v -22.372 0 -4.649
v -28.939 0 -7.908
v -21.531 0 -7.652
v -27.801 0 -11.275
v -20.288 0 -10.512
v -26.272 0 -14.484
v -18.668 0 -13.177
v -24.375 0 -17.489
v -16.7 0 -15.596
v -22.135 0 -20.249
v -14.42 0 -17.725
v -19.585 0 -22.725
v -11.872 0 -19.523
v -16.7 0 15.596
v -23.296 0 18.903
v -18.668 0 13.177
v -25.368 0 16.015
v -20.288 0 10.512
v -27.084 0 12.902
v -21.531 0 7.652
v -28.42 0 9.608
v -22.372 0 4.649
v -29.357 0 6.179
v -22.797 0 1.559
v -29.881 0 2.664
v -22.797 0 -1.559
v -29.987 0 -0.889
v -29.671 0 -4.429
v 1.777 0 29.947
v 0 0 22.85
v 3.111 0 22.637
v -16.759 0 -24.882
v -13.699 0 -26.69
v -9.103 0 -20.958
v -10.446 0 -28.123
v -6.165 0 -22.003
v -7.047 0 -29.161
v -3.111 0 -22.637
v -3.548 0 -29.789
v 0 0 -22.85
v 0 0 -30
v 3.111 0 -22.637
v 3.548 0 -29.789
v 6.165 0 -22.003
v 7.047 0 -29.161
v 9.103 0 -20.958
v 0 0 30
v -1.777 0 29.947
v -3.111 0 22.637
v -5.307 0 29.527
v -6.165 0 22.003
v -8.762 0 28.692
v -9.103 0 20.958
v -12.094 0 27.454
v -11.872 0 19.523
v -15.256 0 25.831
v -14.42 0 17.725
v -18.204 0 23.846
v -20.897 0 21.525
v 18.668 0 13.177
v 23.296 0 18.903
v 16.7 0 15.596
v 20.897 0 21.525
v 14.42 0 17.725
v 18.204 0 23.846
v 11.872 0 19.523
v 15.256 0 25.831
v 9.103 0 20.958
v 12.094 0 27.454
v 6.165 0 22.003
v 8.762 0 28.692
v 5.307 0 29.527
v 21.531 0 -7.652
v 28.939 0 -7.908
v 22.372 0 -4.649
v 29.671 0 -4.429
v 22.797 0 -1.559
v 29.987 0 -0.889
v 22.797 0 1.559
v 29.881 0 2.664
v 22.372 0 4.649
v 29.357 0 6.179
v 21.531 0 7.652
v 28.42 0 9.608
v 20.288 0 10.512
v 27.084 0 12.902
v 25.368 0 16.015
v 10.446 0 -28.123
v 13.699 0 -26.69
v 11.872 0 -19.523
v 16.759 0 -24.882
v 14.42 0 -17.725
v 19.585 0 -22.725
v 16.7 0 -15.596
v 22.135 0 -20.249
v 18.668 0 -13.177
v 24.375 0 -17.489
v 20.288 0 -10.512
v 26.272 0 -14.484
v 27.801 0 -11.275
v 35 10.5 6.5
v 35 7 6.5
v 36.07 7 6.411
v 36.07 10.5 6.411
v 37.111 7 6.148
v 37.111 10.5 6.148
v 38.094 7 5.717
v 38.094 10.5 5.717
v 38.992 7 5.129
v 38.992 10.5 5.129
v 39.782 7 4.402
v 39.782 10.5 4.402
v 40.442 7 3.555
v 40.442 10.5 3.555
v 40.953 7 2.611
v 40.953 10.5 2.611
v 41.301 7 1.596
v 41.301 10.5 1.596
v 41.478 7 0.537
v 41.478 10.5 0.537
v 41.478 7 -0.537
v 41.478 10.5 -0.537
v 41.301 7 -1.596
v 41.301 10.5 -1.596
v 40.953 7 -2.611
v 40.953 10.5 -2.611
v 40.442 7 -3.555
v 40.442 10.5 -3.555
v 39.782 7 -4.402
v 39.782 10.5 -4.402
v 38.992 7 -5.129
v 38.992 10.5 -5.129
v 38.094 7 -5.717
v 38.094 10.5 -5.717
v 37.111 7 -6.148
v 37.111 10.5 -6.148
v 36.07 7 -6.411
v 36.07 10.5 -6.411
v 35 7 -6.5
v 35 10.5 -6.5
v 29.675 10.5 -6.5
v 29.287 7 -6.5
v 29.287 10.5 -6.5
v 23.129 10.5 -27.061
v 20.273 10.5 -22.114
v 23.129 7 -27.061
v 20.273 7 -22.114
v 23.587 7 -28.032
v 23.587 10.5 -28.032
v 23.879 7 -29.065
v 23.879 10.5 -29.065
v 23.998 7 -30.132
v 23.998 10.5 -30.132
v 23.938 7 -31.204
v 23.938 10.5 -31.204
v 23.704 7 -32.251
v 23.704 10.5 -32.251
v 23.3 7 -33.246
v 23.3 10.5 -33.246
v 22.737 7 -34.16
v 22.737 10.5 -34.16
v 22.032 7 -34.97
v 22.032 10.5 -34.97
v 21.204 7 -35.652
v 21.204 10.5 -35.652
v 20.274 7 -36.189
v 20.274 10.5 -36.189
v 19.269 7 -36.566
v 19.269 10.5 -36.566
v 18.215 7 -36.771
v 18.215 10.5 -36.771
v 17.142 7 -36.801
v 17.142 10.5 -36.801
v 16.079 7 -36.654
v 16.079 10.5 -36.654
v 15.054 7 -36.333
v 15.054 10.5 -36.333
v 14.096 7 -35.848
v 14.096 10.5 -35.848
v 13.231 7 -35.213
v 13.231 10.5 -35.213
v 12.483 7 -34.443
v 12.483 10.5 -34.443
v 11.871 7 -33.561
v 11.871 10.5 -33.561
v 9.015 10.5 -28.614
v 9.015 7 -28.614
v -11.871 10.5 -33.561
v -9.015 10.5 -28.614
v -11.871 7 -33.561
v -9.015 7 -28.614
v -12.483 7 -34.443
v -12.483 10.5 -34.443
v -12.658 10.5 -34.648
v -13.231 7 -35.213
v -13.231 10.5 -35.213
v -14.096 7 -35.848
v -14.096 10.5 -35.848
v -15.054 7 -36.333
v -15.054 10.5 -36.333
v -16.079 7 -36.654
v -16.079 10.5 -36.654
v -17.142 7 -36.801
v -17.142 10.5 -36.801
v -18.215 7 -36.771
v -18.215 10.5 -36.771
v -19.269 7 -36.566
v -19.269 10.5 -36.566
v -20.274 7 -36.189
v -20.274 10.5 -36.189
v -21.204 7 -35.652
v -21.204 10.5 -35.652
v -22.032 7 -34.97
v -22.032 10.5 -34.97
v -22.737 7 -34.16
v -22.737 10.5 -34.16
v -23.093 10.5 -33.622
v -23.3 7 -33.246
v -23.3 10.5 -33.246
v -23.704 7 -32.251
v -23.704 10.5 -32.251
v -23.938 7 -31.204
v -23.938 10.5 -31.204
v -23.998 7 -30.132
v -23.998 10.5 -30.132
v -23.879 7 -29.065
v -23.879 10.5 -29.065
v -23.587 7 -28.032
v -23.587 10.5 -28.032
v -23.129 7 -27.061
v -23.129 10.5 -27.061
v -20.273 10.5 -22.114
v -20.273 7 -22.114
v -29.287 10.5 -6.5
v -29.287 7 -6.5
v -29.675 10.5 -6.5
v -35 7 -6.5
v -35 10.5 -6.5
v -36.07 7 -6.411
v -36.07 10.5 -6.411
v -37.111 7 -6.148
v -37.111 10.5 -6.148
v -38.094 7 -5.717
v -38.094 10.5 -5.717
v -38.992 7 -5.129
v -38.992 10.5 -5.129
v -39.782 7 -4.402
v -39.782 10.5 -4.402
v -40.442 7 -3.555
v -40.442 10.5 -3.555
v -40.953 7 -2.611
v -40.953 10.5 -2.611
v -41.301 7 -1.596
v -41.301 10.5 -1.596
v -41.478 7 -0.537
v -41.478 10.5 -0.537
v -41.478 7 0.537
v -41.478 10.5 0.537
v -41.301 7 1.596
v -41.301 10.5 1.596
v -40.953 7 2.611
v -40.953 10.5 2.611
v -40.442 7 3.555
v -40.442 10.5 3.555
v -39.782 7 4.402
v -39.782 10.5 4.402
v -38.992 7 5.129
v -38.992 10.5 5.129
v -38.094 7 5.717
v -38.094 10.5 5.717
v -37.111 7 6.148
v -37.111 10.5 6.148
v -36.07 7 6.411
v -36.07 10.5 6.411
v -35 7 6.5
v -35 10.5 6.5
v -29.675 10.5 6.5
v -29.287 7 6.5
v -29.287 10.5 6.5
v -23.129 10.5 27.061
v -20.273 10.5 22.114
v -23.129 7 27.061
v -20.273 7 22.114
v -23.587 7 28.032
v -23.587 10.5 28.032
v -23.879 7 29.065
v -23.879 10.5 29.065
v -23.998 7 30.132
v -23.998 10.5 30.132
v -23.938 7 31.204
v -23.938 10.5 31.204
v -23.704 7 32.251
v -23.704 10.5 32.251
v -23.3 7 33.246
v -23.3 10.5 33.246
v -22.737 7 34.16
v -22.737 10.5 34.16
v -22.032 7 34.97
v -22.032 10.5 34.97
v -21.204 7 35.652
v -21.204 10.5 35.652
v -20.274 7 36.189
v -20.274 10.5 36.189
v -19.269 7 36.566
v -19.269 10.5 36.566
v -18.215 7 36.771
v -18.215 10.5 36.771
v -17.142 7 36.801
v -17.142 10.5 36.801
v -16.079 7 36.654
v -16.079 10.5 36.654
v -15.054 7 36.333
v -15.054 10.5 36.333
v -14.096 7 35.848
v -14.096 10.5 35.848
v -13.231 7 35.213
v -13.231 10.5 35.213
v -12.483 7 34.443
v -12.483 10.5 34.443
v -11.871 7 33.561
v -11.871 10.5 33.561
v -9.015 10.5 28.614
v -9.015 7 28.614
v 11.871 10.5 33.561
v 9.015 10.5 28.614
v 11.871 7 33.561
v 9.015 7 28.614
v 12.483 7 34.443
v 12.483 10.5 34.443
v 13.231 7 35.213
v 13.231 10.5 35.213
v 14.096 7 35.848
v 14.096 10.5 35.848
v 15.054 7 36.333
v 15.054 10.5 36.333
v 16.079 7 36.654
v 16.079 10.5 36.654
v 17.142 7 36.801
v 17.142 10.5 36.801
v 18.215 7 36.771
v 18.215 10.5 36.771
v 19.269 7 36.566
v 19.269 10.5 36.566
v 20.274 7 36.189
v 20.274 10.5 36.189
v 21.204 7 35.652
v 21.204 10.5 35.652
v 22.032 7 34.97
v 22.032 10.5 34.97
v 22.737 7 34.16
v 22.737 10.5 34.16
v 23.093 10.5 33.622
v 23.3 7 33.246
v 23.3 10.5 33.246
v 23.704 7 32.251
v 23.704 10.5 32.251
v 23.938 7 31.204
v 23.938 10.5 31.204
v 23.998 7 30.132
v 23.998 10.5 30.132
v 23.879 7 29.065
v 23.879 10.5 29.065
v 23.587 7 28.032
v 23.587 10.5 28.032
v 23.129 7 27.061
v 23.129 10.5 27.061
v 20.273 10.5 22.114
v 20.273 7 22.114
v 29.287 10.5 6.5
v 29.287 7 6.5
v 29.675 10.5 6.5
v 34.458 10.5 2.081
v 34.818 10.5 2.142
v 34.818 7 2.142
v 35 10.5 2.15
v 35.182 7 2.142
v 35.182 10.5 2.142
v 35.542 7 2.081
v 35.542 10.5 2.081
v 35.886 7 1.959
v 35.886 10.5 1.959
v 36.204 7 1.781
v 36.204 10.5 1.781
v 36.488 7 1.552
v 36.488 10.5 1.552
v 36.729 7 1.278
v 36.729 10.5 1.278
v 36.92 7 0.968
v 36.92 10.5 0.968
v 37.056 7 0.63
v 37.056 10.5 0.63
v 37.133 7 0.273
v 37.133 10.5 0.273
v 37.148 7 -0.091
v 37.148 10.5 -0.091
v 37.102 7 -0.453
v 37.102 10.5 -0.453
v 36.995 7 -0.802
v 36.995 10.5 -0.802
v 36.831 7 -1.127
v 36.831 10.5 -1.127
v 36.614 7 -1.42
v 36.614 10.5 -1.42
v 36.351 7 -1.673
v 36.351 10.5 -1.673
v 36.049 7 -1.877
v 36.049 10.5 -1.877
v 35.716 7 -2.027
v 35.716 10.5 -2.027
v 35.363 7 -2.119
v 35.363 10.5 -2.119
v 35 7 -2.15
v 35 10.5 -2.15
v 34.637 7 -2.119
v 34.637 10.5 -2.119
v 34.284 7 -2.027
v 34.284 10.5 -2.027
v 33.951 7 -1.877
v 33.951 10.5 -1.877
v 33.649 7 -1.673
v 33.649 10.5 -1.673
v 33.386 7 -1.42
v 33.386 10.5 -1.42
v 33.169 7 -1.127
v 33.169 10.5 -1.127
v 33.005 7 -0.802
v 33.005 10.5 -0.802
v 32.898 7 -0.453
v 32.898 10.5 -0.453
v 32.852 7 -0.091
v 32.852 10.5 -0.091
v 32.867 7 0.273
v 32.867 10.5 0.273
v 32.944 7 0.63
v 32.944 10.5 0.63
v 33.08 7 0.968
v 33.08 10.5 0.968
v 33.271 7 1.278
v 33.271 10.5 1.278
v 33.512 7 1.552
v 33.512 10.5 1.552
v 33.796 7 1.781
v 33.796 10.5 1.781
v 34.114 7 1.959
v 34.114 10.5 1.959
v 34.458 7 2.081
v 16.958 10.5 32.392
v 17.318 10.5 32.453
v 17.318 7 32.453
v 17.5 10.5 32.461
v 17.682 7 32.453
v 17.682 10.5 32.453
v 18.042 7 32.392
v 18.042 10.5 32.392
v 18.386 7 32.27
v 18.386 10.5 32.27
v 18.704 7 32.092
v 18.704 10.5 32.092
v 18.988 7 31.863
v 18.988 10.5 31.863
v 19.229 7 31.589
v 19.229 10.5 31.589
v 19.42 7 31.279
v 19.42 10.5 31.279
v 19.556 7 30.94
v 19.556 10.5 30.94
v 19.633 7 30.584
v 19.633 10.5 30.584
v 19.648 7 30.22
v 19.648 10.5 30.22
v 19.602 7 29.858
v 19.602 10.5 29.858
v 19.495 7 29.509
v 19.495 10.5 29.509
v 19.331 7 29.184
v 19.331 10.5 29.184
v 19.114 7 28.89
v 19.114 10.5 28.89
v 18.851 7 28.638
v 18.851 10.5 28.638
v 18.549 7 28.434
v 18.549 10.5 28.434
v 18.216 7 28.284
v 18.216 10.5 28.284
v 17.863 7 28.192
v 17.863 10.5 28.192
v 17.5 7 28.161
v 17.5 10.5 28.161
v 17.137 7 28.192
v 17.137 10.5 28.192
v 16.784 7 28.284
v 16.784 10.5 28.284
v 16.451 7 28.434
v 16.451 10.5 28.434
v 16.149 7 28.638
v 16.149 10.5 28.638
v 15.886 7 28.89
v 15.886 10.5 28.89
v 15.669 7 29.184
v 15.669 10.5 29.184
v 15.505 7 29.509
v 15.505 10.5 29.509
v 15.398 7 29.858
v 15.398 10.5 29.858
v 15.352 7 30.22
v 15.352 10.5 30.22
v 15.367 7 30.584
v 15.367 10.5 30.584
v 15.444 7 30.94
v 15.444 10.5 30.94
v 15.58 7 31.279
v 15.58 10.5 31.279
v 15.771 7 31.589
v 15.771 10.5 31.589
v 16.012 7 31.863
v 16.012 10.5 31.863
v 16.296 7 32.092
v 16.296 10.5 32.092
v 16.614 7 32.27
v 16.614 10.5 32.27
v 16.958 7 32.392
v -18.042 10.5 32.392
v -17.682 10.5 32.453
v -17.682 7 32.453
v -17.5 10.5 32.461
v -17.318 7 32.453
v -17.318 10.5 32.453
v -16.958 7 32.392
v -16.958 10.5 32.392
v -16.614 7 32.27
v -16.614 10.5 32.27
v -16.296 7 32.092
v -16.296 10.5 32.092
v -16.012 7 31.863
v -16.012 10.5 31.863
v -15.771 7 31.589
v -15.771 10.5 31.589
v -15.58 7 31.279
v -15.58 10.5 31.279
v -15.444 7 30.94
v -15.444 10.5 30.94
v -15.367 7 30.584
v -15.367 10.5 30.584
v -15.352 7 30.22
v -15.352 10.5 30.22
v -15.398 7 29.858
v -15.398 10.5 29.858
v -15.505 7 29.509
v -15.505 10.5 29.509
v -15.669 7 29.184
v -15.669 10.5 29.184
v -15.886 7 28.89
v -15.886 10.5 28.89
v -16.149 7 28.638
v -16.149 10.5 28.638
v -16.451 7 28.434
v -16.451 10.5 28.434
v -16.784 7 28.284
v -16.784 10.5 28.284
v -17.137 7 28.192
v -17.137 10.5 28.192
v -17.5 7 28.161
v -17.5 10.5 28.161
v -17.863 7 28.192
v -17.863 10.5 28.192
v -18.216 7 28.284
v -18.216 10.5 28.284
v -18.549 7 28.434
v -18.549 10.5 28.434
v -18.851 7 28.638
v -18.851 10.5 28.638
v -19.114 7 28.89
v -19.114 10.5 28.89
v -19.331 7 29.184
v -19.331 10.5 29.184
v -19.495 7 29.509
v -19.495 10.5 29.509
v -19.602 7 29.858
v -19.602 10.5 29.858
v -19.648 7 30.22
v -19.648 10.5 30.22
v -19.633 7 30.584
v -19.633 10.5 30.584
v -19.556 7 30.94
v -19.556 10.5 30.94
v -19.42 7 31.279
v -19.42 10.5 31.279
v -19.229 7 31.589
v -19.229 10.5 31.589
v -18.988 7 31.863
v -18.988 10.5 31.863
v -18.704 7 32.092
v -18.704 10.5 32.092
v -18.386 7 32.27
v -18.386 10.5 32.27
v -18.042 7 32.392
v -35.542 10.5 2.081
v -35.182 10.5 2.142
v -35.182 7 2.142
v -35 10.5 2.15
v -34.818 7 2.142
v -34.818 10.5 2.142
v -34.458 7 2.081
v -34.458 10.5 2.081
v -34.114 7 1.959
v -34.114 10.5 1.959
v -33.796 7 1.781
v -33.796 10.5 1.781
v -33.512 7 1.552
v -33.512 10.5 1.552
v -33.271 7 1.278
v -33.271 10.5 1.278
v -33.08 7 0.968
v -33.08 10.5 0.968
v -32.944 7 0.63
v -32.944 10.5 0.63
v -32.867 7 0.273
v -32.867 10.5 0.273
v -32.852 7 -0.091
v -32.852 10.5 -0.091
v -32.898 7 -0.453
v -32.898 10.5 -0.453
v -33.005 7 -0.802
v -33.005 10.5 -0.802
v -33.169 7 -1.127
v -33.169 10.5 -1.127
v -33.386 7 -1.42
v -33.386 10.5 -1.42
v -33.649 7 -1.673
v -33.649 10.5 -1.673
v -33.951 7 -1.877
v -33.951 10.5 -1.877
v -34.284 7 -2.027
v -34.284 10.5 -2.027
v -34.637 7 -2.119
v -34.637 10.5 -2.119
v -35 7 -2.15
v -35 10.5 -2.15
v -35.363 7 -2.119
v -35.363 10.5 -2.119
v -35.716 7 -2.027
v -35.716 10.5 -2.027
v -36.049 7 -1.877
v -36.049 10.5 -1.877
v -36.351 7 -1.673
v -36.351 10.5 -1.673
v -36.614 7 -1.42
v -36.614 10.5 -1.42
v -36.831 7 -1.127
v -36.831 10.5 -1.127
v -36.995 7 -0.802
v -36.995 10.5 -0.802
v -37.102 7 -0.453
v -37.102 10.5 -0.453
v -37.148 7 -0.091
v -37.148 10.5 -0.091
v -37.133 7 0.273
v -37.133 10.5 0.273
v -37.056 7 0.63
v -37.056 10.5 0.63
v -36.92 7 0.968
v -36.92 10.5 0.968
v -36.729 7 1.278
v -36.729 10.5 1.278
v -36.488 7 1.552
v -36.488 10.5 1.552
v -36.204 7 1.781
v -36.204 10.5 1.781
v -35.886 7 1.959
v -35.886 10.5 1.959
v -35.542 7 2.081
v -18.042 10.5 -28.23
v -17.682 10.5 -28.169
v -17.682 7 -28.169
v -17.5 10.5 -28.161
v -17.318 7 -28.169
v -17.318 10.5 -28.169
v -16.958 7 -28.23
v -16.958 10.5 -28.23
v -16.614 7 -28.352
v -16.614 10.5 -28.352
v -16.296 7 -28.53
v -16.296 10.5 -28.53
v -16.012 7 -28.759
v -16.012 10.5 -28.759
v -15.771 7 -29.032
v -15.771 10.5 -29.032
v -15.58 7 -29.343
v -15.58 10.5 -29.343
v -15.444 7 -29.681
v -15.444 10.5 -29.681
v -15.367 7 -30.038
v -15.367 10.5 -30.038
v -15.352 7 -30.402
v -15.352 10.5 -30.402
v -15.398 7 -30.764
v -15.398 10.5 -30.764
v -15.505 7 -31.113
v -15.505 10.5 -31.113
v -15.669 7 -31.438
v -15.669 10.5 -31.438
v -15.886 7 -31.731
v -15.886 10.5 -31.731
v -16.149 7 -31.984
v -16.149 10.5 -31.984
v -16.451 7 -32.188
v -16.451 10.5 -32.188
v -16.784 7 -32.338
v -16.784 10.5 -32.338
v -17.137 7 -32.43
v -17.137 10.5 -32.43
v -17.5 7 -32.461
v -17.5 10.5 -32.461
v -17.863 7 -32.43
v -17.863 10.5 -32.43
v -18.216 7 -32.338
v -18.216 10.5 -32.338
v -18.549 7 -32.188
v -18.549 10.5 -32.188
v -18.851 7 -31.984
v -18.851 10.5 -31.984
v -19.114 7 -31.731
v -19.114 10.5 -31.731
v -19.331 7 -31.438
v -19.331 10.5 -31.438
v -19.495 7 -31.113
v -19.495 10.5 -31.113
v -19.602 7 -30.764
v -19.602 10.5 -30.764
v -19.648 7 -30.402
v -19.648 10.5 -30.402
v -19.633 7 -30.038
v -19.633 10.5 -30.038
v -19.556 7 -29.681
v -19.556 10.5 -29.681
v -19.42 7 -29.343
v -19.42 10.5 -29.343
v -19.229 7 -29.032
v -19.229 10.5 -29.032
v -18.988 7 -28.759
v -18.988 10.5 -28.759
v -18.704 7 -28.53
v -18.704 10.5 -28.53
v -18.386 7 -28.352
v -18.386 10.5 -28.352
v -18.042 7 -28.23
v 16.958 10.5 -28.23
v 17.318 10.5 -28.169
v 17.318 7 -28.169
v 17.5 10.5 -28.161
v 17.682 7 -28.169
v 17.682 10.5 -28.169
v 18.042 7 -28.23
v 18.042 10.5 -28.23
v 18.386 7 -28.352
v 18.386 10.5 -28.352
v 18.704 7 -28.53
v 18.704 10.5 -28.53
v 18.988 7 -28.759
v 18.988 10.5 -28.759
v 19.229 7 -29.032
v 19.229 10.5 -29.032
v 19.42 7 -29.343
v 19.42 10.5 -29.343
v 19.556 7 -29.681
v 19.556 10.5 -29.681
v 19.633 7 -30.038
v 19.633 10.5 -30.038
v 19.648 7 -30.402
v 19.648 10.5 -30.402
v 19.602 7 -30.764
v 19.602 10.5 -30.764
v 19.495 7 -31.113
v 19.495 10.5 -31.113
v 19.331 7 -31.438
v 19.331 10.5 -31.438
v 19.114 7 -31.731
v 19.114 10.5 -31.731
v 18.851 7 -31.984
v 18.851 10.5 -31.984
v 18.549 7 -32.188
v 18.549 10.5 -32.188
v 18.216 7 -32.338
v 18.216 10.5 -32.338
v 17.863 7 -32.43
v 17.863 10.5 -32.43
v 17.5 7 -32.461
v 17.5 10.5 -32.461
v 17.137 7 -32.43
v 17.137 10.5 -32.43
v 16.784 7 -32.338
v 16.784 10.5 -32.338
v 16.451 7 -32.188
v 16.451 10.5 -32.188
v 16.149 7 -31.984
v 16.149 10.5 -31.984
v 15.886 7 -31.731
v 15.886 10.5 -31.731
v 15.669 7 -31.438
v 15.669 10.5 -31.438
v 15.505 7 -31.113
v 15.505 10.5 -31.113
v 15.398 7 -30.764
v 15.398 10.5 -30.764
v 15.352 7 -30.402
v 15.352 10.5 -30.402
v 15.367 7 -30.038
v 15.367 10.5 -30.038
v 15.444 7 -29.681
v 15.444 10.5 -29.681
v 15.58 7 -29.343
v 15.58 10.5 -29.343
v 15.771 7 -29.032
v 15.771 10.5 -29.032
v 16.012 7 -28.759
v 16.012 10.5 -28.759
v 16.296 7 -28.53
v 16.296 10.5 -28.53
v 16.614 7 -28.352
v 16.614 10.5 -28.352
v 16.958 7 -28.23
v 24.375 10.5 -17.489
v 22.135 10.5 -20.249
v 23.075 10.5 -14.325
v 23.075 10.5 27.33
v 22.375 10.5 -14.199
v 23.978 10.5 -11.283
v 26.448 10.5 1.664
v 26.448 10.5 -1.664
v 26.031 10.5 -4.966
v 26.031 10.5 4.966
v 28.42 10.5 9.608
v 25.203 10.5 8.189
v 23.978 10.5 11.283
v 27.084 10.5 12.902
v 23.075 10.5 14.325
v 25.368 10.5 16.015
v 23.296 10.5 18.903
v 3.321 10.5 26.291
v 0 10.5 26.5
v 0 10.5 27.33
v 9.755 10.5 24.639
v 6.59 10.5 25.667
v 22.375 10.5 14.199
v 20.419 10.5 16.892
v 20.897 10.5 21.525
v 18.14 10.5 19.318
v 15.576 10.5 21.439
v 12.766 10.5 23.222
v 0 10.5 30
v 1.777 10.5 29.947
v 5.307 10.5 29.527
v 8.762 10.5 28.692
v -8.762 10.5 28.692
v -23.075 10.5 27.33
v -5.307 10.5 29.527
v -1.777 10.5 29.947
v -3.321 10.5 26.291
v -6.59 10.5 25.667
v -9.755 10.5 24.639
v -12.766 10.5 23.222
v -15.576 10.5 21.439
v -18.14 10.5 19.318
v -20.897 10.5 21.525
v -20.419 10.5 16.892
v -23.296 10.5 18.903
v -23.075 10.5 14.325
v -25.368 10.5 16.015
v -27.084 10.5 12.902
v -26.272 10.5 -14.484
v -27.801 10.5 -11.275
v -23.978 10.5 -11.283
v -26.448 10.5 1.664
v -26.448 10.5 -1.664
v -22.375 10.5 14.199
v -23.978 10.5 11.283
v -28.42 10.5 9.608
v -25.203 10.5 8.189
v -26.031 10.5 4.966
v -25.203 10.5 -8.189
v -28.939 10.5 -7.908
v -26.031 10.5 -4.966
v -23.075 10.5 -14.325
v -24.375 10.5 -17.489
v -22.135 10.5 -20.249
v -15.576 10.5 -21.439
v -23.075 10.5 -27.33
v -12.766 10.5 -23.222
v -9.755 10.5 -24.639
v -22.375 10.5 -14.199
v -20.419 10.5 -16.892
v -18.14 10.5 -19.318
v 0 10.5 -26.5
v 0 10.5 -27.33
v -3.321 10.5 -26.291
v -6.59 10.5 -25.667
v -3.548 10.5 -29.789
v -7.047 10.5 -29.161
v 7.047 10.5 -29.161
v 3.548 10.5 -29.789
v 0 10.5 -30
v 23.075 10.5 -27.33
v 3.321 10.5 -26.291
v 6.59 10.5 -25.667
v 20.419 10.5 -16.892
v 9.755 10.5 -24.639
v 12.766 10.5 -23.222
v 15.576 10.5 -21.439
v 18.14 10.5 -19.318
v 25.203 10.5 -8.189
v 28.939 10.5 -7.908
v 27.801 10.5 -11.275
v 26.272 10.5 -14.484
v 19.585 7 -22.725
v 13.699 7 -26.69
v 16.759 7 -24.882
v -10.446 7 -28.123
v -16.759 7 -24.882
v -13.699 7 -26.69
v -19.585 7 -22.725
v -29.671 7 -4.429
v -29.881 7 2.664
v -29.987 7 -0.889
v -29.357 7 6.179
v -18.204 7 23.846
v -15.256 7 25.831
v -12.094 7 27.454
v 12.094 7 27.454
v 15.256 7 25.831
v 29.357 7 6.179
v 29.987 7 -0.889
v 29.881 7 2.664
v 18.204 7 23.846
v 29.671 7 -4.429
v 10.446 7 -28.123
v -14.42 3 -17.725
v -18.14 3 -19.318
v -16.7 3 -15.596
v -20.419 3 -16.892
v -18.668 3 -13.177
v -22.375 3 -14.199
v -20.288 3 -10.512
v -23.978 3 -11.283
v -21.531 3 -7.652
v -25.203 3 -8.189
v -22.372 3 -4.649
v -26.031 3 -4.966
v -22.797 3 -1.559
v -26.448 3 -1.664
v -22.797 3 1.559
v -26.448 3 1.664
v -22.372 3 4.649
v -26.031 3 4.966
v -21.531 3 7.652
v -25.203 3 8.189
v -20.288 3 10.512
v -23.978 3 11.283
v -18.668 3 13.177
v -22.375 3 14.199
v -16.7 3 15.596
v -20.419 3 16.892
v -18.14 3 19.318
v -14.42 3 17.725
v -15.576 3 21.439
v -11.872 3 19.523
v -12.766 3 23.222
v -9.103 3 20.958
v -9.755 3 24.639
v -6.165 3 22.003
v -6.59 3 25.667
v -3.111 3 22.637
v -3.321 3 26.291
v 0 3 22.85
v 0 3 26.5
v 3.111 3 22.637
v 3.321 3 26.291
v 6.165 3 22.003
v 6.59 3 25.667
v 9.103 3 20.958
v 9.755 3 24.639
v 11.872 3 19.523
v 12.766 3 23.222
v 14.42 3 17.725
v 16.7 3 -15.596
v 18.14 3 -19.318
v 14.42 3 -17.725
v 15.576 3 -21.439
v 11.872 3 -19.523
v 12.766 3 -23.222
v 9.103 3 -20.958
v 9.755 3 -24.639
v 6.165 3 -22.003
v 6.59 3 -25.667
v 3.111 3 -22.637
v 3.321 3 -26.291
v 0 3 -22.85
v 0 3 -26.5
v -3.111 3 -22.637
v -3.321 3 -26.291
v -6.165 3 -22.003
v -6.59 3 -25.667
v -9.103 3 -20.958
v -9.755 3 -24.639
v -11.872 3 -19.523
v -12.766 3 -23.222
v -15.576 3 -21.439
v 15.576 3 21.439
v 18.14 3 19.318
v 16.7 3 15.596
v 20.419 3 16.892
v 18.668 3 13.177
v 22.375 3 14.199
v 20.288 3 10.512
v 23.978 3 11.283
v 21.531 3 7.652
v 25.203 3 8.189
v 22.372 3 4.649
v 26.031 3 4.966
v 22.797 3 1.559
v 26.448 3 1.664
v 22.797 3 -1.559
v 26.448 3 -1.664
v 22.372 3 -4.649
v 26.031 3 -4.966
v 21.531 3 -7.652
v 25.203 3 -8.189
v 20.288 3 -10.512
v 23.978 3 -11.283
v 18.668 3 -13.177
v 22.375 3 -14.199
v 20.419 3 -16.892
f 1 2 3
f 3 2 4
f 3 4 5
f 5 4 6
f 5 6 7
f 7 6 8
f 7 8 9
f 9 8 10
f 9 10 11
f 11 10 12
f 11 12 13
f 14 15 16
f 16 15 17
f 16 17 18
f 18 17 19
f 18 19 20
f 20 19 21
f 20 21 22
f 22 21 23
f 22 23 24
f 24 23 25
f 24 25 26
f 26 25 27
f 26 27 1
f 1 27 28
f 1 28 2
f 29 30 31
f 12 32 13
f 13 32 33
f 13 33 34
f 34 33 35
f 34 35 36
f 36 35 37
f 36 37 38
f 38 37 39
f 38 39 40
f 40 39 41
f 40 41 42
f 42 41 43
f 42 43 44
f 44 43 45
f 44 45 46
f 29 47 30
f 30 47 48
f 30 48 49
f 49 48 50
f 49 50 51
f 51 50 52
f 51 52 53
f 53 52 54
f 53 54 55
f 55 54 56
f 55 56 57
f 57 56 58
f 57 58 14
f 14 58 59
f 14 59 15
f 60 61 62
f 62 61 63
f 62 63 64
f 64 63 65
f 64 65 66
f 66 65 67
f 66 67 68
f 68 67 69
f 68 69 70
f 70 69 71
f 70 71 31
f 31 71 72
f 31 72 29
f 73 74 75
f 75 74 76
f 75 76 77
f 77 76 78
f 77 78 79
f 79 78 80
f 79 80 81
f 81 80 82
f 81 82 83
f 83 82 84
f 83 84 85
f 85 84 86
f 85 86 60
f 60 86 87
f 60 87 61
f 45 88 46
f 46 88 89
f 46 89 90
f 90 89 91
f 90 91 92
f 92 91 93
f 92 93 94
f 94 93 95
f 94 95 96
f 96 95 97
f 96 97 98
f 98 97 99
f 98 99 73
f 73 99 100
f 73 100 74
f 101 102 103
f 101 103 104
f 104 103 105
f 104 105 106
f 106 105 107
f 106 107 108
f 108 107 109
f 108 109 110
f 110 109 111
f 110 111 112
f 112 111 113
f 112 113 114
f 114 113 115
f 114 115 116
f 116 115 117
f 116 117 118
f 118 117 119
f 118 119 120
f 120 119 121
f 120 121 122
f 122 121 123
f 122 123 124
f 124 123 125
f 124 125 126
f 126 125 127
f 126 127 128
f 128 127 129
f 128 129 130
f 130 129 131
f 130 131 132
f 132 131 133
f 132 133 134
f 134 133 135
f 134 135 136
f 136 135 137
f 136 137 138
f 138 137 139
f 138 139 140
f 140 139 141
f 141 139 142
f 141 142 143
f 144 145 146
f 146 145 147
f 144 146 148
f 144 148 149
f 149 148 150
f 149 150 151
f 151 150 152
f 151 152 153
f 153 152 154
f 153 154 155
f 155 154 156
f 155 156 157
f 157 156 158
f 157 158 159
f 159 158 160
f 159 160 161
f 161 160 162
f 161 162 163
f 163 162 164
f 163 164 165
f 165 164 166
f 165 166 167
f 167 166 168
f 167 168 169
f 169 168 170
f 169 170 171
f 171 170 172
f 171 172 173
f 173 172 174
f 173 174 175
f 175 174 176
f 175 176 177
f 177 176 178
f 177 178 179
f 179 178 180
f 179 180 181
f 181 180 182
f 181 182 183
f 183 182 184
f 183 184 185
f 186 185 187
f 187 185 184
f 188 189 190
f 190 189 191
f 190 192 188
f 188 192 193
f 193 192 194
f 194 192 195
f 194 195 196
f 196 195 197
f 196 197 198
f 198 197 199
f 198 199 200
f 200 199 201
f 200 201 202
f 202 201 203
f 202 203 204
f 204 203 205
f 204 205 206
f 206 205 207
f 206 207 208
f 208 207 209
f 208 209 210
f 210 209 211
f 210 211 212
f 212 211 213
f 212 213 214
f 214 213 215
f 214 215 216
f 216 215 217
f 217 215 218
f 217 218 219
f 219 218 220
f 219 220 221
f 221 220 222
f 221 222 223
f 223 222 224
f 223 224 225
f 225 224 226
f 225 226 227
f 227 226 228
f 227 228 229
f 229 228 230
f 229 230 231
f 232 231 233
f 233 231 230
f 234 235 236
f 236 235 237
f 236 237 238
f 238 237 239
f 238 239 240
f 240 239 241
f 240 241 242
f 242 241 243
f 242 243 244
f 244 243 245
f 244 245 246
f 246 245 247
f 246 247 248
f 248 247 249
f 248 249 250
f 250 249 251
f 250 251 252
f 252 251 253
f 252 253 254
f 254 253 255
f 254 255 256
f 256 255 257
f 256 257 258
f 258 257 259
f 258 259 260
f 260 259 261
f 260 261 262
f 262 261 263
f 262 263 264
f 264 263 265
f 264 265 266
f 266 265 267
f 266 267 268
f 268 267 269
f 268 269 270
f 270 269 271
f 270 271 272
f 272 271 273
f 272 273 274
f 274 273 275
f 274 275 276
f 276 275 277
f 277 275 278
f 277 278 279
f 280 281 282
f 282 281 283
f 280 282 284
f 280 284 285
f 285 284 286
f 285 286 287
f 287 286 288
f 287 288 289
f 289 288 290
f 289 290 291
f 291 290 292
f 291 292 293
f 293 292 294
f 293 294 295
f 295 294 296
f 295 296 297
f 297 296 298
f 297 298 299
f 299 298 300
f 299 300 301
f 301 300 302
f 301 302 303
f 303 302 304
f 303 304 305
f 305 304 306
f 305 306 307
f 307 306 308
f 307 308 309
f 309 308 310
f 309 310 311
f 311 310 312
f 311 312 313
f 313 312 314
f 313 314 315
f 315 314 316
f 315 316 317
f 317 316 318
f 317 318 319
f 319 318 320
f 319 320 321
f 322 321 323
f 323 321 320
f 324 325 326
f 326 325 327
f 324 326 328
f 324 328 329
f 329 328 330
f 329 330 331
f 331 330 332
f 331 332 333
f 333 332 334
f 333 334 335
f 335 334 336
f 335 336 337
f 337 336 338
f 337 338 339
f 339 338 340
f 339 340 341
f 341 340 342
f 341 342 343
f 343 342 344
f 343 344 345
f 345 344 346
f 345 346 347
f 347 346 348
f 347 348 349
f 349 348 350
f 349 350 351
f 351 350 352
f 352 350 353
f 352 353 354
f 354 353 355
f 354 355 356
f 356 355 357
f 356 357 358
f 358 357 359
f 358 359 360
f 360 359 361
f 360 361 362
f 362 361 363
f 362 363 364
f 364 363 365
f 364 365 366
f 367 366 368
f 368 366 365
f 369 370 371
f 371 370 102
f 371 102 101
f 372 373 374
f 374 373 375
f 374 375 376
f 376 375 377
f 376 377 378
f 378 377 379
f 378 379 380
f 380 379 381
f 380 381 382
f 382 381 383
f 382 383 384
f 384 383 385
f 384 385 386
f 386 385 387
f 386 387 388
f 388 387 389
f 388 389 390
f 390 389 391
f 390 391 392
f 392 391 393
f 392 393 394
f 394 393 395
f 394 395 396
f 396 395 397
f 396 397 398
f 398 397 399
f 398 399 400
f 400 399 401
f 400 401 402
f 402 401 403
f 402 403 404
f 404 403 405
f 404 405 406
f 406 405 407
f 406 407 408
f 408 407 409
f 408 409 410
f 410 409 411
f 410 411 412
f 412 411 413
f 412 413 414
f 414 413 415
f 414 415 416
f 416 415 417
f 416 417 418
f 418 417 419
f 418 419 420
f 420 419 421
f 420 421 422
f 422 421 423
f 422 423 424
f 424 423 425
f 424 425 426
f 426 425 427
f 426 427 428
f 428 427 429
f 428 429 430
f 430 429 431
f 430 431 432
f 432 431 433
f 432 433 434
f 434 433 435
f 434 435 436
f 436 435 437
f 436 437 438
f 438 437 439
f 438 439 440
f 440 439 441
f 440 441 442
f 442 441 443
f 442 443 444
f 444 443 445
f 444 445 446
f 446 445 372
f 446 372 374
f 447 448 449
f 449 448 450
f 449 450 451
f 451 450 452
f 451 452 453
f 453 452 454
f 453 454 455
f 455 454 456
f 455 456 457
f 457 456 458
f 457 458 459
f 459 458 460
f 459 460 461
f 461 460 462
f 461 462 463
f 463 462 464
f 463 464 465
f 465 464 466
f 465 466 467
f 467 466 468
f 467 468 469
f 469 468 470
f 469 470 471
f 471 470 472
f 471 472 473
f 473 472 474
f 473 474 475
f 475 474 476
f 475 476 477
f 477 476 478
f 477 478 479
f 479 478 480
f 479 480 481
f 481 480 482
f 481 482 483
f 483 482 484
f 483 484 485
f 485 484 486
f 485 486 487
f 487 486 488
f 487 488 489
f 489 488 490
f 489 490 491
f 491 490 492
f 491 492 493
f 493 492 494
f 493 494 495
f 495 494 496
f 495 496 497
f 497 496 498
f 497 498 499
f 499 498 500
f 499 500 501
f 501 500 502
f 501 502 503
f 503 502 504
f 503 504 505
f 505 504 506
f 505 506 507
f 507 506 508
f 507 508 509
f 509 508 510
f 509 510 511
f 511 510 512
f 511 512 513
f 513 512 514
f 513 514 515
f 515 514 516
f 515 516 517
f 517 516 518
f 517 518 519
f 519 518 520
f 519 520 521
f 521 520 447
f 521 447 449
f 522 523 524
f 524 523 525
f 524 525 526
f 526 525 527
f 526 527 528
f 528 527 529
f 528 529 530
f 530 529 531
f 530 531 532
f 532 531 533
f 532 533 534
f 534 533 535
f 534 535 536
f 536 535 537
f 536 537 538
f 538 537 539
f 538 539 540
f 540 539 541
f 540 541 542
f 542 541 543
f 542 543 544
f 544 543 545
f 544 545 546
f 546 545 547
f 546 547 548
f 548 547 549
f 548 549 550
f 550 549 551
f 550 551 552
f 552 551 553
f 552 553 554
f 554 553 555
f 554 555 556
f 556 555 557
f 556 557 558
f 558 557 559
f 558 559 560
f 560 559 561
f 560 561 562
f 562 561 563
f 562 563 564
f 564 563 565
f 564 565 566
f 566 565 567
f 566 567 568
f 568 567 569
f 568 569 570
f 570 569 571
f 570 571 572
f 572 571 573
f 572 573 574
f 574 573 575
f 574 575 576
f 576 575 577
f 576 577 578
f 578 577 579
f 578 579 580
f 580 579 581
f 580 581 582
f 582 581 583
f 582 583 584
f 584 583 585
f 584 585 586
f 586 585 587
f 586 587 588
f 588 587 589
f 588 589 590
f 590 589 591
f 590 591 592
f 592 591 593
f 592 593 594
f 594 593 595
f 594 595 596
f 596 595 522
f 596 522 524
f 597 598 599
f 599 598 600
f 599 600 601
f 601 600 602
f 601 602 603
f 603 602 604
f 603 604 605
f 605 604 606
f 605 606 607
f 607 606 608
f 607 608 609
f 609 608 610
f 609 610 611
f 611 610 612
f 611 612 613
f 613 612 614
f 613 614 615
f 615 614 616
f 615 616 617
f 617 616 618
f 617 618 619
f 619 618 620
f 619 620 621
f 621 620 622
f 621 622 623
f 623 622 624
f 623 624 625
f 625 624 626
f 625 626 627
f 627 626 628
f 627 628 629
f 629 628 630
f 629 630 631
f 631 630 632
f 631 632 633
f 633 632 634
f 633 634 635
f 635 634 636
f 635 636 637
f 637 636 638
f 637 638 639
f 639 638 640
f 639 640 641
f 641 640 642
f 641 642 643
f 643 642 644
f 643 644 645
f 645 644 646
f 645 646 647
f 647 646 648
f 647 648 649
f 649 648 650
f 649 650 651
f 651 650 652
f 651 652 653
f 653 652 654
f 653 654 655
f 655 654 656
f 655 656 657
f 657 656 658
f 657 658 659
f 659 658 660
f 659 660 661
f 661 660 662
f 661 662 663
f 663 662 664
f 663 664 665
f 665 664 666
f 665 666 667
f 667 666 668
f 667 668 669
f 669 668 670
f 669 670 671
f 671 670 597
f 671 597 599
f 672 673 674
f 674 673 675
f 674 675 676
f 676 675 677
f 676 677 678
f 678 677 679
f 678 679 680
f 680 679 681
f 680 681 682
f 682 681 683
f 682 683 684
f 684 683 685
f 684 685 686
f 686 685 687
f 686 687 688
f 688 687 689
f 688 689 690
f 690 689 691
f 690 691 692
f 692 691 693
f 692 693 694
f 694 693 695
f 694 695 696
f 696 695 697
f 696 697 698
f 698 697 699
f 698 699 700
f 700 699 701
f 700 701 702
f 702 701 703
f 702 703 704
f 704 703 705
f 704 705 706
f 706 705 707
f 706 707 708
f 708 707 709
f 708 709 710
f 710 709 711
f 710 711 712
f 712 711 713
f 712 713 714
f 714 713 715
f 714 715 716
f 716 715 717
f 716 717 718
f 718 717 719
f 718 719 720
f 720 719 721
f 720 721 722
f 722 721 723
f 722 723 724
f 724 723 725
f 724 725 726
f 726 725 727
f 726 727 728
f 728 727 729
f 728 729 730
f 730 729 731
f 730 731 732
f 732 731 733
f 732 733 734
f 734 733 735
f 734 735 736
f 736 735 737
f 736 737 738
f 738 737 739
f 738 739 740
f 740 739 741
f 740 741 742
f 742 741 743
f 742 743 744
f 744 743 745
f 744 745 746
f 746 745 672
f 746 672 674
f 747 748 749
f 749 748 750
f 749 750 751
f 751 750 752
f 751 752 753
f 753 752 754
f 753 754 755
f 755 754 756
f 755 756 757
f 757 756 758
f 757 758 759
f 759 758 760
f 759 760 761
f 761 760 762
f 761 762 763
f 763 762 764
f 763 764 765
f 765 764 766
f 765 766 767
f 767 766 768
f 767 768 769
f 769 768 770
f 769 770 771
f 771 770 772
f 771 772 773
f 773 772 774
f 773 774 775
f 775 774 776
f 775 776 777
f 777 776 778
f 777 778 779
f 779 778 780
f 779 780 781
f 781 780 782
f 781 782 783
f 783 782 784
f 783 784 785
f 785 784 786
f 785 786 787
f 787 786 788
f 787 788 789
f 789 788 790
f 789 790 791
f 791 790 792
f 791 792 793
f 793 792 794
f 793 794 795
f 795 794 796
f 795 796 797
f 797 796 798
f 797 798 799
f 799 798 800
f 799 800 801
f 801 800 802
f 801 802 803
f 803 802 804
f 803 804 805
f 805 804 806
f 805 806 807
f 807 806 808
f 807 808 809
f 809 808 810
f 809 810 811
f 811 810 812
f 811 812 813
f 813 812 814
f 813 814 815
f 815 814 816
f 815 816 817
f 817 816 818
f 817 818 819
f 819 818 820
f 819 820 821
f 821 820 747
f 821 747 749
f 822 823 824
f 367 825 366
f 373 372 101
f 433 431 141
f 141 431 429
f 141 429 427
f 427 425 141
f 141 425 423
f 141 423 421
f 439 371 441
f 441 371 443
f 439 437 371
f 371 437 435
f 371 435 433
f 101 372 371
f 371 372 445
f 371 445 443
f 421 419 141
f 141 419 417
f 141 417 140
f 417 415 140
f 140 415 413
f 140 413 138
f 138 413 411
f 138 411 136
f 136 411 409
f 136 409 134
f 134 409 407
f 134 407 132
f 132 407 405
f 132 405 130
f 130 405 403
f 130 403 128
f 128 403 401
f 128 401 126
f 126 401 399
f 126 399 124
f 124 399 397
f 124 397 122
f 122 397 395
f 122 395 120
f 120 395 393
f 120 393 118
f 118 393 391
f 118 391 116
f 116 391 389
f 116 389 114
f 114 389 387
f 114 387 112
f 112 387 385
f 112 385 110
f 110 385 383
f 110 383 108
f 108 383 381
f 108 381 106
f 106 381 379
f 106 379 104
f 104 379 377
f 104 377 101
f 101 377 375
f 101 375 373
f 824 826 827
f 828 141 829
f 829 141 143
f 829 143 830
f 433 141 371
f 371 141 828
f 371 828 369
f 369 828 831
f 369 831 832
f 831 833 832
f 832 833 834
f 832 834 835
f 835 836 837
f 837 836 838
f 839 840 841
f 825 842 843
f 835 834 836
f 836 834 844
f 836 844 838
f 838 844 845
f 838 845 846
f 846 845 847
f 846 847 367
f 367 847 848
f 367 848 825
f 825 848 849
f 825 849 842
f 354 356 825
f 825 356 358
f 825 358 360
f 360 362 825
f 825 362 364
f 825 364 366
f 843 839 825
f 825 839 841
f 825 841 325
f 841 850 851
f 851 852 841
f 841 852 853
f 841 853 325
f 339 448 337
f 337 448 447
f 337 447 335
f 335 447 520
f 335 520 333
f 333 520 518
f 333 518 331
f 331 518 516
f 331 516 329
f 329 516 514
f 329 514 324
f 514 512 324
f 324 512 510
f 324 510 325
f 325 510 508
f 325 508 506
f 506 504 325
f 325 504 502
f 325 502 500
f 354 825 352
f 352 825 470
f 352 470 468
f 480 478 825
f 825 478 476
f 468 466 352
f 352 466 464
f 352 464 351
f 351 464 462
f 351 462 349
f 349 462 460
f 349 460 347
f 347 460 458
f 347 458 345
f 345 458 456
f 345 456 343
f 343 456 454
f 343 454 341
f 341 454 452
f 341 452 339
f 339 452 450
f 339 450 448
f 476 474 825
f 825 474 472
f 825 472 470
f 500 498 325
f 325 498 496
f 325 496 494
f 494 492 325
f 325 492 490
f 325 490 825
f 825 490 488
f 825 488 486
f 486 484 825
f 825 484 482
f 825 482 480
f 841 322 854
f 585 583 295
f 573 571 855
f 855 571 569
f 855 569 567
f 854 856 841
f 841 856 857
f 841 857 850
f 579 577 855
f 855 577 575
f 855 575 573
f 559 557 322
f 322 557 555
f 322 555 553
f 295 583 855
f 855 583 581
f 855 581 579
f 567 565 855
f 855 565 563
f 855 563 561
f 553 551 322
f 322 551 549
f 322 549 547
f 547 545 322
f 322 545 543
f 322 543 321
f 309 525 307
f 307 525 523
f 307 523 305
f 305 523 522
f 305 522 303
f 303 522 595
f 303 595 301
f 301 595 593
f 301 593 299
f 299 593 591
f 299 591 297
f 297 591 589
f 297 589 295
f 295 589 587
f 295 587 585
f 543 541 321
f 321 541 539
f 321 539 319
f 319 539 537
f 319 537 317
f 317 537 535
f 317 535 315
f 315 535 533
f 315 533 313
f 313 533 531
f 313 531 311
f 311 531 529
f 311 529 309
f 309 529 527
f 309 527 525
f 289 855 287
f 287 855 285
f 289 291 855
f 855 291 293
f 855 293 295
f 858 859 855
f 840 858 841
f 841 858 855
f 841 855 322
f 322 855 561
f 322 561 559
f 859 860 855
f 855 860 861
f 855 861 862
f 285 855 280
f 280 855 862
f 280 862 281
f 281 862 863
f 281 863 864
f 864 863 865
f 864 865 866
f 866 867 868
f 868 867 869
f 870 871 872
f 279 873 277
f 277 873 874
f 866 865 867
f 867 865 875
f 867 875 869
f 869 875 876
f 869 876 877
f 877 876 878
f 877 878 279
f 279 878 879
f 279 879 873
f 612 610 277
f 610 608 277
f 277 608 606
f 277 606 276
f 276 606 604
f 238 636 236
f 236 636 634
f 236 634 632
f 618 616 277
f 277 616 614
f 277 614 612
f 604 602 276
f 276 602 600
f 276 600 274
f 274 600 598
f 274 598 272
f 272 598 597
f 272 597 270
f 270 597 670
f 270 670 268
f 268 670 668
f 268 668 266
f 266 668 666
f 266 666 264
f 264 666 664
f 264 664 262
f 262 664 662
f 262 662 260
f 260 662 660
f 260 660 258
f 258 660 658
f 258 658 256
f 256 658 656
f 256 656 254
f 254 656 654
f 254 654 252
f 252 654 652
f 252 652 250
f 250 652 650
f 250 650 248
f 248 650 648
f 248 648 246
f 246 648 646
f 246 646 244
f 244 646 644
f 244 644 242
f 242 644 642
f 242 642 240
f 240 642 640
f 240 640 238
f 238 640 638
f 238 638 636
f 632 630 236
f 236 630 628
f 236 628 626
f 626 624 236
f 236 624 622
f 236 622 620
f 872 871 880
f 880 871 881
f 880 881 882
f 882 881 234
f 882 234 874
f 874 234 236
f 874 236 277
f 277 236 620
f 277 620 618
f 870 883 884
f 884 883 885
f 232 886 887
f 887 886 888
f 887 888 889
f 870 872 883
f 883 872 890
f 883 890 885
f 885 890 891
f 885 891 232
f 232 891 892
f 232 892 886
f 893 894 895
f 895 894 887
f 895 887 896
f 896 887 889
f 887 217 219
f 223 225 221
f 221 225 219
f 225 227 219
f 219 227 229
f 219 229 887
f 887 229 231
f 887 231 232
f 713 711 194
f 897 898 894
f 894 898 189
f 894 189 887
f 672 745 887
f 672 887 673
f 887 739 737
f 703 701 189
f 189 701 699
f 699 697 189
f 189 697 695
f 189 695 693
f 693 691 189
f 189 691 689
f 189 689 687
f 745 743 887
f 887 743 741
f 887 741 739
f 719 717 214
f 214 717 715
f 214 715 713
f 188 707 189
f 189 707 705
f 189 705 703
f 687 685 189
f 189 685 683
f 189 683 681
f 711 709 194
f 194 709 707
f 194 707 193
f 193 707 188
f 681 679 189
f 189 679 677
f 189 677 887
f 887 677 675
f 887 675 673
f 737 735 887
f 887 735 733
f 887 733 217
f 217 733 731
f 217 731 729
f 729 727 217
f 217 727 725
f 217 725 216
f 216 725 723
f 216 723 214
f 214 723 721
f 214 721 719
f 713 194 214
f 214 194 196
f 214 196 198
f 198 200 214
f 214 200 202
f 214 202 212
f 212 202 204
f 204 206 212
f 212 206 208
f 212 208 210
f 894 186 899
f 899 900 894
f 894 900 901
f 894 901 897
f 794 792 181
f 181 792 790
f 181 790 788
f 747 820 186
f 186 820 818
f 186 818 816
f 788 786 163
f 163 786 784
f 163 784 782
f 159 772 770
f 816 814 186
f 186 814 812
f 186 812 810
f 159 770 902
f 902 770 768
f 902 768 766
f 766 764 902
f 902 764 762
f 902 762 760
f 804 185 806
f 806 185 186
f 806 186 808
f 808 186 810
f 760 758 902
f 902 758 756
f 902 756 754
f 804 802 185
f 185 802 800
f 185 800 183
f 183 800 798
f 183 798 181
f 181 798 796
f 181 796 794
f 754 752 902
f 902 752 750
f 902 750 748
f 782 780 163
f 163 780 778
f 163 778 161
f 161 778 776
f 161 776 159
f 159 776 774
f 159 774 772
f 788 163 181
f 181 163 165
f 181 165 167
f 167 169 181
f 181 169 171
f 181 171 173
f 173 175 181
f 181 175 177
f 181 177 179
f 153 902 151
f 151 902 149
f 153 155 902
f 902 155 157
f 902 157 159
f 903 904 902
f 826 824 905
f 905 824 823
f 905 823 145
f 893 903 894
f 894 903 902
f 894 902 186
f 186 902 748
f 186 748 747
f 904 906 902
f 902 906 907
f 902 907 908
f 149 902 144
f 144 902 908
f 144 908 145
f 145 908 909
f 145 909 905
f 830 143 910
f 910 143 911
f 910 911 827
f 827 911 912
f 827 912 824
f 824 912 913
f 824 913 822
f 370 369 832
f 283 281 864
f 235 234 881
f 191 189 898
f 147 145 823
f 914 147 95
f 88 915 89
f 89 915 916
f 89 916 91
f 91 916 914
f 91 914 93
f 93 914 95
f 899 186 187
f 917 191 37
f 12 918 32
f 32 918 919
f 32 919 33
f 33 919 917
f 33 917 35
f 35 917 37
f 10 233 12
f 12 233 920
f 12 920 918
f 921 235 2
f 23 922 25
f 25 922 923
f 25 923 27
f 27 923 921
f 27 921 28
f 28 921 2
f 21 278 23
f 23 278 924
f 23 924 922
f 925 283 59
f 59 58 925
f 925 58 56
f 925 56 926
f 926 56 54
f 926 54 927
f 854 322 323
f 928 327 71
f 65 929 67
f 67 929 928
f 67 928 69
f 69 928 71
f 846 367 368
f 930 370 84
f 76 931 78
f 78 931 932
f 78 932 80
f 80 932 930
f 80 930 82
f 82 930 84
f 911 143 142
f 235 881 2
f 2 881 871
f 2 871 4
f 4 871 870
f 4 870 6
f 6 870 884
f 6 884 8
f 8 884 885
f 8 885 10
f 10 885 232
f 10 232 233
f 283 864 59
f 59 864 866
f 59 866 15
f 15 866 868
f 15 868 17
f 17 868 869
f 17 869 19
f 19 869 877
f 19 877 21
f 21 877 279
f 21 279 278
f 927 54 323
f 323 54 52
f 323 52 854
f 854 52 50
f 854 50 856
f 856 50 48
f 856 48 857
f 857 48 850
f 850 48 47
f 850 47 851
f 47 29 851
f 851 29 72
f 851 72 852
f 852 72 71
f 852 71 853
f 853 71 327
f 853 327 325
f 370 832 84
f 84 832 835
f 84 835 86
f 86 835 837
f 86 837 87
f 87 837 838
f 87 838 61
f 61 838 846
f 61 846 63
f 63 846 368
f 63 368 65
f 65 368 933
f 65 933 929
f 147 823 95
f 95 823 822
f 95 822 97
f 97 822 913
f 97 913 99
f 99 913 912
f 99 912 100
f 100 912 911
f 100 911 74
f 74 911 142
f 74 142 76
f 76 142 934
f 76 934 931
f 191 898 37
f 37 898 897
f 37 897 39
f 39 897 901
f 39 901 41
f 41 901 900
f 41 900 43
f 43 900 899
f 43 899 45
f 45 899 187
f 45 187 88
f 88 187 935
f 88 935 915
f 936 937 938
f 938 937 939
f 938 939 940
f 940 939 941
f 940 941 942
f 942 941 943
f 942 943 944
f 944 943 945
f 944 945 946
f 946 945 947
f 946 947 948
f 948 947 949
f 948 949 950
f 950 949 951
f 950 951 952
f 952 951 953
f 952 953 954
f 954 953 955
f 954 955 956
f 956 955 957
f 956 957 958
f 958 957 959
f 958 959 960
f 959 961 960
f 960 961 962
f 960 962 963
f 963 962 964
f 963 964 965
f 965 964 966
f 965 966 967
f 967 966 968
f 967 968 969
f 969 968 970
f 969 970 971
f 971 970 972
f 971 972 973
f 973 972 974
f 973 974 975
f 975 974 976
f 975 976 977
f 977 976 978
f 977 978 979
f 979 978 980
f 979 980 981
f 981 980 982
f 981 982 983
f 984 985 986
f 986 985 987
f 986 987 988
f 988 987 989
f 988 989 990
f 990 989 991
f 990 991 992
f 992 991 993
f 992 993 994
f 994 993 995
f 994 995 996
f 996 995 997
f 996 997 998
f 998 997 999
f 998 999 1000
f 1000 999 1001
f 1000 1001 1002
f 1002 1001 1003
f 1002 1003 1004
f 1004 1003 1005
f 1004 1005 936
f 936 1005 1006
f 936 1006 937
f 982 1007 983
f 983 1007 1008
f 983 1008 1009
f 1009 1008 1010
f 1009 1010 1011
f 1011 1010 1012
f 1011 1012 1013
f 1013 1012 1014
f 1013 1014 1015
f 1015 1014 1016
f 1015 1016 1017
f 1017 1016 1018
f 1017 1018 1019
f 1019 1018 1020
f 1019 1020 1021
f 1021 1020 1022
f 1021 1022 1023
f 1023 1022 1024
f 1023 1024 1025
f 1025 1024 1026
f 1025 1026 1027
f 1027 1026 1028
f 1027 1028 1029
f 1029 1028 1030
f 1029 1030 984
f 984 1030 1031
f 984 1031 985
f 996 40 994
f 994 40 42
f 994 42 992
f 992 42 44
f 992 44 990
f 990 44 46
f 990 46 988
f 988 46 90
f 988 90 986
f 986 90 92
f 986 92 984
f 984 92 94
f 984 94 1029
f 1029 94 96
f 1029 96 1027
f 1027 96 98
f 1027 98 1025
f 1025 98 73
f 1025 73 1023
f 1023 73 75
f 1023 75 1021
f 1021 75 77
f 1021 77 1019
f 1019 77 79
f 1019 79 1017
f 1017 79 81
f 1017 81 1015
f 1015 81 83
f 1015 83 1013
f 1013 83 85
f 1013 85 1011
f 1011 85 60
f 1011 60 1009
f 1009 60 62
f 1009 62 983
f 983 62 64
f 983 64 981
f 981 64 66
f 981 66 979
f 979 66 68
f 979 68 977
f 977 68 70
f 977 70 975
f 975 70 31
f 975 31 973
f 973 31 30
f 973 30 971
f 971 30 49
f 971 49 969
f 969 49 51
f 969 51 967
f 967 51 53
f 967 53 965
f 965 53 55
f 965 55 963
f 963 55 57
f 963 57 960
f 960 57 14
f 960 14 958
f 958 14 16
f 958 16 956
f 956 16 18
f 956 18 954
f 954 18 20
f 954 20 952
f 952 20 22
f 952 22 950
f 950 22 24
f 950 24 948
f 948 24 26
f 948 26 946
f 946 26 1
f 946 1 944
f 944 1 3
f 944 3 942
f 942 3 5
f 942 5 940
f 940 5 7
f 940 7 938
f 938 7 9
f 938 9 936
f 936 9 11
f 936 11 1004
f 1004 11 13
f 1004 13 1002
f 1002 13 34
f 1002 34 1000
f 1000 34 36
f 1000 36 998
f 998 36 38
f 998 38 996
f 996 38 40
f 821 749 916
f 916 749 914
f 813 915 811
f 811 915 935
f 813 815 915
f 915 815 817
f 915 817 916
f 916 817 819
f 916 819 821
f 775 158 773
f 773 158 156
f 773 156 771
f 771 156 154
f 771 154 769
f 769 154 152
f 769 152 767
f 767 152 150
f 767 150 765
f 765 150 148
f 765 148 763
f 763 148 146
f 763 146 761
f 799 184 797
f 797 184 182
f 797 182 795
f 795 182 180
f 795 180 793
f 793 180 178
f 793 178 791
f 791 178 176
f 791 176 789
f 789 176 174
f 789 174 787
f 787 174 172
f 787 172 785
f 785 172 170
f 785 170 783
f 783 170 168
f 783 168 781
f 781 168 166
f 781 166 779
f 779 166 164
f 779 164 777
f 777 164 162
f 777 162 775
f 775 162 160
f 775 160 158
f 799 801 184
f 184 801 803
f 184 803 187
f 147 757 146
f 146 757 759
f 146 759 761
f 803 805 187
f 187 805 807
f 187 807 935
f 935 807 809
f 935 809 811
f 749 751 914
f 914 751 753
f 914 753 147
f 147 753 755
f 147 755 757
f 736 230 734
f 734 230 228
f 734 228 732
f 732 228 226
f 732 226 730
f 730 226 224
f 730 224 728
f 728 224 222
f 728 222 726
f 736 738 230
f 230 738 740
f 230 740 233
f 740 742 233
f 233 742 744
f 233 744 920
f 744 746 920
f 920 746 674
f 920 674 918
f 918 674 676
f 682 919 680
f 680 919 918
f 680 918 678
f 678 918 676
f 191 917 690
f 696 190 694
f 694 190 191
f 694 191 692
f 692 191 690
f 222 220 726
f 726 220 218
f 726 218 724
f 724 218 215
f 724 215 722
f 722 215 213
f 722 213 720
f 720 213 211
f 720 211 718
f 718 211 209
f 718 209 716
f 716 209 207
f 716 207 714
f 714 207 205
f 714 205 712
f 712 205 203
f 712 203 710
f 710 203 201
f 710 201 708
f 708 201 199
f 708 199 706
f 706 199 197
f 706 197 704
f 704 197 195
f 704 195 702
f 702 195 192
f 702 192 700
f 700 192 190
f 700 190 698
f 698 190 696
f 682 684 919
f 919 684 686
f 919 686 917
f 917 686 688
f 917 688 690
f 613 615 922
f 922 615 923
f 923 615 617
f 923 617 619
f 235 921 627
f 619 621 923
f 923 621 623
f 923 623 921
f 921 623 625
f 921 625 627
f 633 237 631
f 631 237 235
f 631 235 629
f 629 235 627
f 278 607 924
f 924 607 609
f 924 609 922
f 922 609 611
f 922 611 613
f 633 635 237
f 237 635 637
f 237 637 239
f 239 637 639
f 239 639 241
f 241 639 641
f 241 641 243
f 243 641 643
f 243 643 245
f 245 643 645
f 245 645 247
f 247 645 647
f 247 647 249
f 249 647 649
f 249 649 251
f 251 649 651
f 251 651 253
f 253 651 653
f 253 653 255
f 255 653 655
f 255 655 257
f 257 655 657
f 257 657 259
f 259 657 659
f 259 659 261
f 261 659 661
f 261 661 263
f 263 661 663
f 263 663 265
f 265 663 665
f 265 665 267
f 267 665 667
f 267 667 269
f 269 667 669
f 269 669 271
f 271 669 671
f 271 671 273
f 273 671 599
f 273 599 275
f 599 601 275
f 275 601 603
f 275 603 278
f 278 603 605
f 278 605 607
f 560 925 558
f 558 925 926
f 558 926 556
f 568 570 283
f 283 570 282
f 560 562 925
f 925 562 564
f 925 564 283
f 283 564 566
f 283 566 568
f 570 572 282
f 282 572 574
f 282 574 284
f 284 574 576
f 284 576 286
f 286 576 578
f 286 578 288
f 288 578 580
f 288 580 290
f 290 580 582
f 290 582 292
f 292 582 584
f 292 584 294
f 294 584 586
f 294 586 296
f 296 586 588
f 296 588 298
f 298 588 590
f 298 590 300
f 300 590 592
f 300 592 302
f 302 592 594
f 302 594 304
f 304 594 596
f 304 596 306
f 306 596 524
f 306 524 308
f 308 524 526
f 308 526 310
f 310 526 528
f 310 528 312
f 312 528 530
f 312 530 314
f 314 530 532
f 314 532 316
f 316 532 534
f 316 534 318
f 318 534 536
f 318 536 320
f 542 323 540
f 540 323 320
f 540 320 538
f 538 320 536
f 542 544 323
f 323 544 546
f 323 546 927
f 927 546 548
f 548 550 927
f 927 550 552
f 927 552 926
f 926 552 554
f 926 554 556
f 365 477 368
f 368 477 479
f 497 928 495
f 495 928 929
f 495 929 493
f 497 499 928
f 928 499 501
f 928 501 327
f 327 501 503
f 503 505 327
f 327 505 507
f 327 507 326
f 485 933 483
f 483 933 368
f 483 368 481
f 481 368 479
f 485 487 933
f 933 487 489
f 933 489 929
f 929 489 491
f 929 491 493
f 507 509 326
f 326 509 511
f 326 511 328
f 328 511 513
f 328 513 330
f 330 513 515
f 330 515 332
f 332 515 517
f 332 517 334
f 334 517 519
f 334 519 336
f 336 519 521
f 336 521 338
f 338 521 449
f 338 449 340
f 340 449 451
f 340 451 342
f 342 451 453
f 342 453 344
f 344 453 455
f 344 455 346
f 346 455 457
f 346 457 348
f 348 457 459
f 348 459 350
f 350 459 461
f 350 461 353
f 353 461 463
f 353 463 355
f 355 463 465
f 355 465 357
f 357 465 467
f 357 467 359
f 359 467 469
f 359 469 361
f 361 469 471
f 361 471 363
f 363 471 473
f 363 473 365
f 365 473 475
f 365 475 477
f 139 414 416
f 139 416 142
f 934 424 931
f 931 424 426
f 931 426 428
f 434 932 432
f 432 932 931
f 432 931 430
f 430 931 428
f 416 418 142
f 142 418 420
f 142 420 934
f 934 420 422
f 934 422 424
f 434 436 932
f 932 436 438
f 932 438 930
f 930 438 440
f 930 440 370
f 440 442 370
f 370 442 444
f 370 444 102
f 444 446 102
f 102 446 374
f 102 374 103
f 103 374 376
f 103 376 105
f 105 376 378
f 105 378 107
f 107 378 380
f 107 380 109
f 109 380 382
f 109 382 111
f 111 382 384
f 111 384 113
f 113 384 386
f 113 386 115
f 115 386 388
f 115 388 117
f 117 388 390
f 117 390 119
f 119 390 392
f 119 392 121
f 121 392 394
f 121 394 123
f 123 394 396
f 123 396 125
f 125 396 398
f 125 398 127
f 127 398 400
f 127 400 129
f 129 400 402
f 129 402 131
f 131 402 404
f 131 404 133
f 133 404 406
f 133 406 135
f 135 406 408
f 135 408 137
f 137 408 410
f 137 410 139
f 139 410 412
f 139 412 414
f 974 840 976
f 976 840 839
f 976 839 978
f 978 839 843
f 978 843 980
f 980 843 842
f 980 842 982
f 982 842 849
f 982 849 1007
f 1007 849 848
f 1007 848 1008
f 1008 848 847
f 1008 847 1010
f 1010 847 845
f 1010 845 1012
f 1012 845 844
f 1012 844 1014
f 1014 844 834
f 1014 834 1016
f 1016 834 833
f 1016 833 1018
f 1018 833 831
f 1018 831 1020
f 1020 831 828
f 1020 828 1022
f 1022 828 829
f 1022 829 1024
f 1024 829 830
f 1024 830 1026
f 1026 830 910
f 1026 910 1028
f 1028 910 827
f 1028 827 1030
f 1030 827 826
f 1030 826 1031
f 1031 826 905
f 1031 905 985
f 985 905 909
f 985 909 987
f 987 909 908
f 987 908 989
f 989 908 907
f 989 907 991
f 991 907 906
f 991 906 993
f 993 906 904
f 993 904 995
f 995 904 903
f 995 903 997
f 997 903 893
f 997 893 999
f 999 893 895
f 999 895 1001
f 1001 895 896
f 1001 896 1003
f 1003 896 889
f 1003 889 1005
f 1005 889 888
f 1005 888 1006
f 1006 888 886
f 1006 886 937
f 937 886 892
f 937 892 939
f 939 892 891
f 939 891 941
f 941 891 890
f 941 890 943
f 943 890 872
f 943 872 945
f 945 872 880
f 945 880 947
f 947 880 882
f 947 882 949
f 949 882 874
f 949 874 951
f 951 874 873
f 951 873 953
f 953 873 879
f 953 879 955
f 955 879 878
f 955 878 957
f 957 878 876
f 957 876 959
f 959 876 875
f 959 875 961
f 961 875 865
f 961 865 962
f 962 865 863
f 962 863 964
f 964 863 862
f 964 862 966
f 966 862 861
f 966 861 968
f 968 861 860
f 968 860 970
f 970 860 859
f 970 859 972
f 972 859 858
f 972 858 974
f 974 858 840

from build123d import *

# Parameters (mm, degrees)
SKETCH1_R           = 26
SKETCH1_R_2         = 2.15
BOSS_EXTRUDE1_DEPTH = 10.5
SKETCH2_R           = 27.448916739
SKETCH2_R_2         = 22.85
BOSS_EXTRUDE2_DEPTH = 3
SKETCH3_R           = 44.09476296
SKETCH3_R_2         = 30
CUT_EXTRUDE1_DEPTH  = 7
SKETCH4_R           = 26.5
CUT_EXTRUDE2_DEPTH  = 7.5


with BuildPart() as part:
    # Sketch1 → Boss-Extrude1 (new body)
    with BuildSketch(Plane(origin=(0, 0, 0), x_dir=(1, 0, 0), z_dir=(0, 1, 0))):
        with BuildLine():
            Line((11.870834875, -33.560889132), (9.014519521, -28.613605816))
            ThreePointArc((9.014519521, -28.613605816), (0, -30), (-9.014519521, -28.613605816))
            Line((-9.014519521, -28.613605816), (-11.870834875, -33.560889132))
            ThreePointArc((-11.870834875, -33.560889132), (-20.75, -35.940054257), (-23.129165125, -27.060889132))
            Line((-23.129165125, -27.060889132), (-20.27284977, -22.113605816))
            ThreePointArc((-20.27284977, -22.113605816), (-25.980762114, -15), (-29.287369291, -6.5))
            Line((-29.287369291, -6.5), (-35, -6.5))
            ThreePointArc((-35, -6.5), (-41.5, 0), (-35, 6.5))
            Line((-35, 6.5), (-29.287369291, 6.5))
            ThreePointArc((-29.287369291, 6.5), (-25.980762114, 15), (-20.27284977, 22.113605816))
            Line((-20.27284977, 22.113605816), (-23.129165125, 27.060889132))
            ThreePointArc((-23.129165125, 27.060889132), (-20.75, 35.940054257), (-11.870834875, 33.560889132))
            Line((-11.870834875, 33.560889132), (-9.014519521, 28.613605816))
            ThreePointArc((-9.014519521, 28.613605816), (0, 30), (9.014519521, 28.613605816))
            Line((9.014519521, 28.613605816), (11.870834875, 33.560889132))
            ThreePointArc((11.870834875, 33.560889132), (20.75, 35.940054257), (23.129165125, 27.060889132))
            Line((23.129165125, 27.060889132), (20.27284977, 22.113605816))
            ThreePointArc((20.27284977, 22.113605816), (25.980762114, 15), (29.287369291, 6.5))
            Line((29.287369291, 6.5), (35, 6.5))
            ThreePointArc((35, 6.5), (41.5, 0), (35, -6.5))
            Line((35, -6.5), (29.287369291, -6.5))
            ThreePointArc((29.287369291, -6.5), (25.980762114, -15), (20.27284977, -22.113605816))
            Line((20.27284977, -22.113605816), (23.129165125, -27.060889132))
            ThreePointArc((23.129165125, -27.060889132), (20.75, -35.940054257), (11.870834875, -33.560889132))
        make_face()
        Circle(SKETCH1_R, mode=Mode.SUBTRACT)
        with Locations((35, 0)):
            Circle(SKETCH1_R_2, mode=Mode.SUBTRACT)
        with Locations((17.5, -30.310889132)):
            Circle(SKETCH1_R_2, mode=Mode.SUBTRACT)
        with Locations((-17.5, -30.310889132)):
            Circle(SKETCH1_R_2, mode=Mode.SUBTRACT)
        with Locations((-35, 0)):
            Circle(SKETCH1_R_2, mode=Mode.SUBTRACT)
        with Locations((-17.5, 30.310889132)):
            Circle(SKETCH1_R_2, mode=Mode.SUBTRACT)
        with Locations((17.5, 30.310889132)):
            Circle(SKETCH1_R_2, mode=Mode.SUBTRACT)
    extrude(amount=BOSS_EXTRUDE1_DEPTH)

    # Sketch2 → Boss-Extrude2 (add)
    with BuildSketch(Plane.XZ):
        Circle(SKETCH2_R)
        Circle(SKETCH2_R_2, mode=Mode.SUBTRACT)
    extrude(amount=-BOSS_EXTRUDE2_DEPTH)

    # Sketch3 → Cut-Extrude1 (cut)
    with BuildSketch(Plane.XZ):
        Circle(SKETCH3_R)
        Circle(SKETCH3_R_2, mode=Mode.SUBTRACT)
    extrude(amount=-CUT_EXTRUDE1_DEPTH, mode=Mode.SUBTRACT)

    # Sketch4 → Cut-Extrude2 (cut)
    with BuildSketch(Plane(origin=(0, 10.5, 0), x_dir=(1, 0, 0), z_dir=(0, 1, 0))):
        Circle(SKETCH4_R)
    extrude(amount=-CUT_EXTRUDE2_DEPTH, mode=Mode.SUBTRACT)


solid = part.part
